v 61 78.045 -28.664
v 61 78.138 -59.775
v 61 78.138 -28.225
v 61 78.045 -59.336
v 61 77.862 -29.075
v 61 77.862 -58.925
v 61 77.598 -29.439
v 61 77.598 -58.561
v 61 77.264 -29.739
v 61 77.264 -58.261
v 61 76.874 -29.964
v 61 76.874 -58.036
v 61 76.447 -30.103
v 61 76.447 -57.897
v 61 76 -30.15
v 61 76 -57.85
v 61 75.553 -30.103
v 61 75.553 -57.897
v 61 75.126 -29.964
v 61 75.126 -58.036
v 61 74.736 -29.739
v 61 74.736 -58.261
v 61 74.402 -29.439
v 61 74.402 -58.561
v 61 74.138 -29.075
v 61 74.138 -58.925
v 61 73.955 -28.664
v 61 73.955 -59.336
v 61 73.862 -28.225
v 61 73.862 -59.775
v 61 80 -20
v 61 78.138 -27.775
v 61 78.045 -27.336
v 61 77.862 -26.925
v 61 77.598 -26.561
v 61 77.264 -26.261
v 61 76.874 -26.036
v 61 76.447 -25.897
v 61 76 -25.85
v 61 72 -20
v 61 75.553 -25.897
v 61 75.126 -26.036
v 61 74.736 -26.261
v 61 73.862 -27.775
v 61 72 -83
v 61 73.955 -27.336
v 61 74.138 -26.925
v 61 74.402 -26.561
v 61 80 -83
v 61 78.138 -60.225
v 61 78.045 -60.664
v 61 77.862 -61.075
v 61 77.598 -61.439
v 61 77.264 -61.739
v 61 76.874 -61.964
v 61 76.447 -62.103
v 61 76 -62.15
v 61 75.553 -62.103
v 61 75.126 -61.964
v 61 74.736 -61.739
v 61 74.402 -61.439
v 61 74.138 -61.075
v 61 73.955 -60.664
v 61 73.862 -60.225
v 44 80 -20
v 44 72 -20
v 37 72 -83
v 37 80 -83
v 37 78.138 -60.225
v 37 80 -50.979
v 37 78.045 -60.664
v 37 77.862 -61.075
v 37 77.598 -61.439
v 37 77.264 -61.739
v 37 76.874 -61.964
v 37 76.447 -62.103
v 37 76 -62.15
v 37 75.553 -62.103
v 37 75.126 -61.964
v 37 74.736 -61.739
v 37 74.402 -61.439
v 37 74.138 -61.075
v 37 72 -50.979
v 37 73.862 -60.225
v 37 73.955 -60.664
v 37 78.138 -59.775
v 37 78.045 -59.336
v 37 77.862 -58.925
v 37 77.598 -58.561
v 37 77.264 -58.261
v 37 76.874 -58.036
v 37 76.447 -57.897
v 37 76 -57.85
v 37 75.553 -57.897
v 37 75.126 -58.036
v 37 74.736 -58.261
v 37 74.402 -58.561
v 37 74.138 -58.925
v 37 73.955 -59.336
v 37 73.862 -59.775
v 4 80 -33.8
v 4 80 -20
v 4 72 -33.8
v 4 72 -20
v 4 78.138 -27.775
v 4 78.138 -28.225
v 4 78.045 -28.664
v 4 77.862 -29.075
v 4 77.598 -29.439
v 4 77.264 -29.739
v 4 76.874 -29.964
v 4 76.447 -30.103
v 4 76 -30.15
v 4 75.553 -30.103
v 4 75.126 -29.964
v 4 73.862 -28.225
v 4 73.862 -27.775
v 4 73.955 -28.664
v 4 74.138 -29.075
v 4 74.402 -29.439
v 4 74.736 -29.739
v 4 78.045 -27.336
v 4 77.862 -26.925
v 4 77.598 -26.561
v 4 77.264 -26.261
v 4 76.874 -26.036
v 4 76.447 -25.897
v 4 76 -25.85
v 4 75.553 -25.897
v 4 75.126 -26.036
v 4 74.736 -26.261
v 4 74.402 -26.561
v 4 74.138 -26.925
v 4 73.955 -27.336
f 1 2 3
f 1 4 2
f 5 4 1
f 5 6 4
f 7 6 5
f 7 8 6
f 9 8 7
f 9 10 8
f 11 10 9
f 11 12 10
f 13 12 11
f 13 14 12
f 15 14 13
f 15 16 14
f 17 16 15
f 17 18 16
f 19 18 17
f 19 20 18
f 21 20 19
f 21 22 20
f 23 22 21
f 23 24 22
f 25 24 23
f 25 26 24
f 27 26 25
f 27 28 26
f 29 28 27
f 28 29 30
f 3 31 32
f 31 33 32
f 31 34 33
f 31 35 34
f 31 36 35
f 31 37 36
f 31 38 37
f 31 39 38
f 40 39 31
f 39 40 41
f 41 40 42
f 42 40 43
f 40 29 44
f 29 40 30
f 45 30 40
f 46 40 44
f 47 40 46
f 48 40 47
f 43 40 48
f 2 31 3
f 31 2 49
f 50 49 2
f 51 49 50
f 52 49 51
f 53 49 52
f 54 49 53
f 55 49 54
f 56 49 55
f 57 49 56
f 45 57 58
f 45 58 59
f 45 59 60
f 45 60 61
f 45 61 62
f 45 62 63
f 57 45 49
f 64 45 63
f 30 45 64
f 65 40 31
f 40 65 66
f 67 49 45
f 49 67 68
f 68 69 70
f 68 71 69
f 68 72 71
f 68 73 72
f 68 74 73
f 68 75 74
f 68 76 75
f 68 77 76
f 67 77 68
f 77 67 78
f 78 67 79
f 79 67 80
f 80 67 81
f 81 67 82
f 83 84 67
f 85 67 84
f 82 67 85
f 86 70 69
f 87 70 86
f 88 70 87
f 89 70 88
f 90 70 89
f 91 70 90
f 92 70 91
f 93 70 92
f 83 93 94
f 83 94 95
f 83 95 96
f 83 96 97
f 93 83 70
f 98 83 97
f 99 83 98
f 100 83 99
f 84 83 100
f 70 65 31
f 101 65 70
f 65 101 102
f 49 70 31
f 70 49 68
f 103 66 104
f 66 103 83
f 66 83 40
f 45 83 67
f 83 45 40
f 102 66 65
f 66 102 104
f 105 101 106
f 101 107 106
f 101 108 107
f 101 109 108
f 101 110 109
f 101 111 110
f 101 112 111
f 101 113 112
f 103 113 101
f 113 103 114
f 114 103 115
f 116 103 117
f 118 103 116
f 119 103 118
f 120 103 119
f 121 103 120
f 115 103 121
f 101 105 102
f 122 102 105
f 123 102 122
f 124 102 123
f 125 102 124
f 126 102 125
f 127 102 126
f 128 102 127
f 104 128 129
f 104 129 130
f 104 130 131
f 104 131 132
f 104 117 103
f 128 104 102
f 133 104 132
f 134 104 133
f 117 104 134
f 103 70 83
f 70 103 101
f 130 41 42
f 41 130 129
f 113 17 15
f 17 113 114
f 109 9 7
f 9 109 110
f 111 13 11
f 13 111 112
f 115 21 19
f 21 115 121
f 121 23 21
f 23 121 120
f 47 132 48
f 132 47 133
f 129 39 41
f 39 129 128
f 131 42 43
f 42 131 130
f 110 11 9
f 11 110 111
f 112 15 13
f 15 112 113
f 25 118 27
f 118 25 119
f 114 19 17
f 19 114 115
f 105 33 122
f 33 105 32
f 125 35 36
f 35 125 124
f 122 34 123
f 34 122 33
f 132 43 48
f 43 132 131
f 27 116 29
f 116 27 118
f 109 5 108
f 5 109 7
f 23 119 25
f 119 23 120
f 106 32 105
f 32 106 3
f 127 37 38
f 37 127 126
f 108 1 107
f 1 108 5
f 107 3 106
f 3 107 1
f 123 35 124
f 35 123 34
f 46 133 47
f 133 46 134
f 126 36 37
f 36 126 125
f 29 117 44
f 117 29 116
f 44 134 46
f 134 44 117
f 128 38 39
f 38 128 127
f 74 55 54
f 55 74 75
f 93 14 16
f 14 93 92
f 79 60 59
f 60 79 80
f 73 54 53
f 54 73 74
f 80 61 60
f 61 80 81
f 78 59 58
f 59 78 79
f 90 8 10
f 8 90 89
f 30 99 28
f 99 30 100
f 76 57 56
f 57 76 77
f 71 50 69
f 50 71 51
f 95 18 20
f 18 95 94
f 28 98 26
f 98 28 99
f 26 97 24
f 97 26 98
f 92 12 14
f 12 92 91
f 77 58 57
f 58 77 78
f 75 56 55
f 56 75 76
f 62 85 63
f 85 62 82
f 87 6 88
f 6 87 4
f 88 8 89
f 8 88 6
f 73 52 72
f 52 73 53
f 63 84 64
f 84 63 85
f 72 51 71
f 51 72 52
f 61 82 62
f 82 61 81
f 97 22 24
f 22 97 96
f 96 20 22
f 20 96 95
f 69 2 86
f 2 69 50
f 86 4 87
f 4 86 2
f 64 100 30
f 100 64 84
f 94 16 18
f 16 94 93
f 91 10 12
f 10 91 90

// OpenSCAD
// side piece of chimney guard rail for left entry
color ("linen")
difference() {
union () {
    // long left side
    translate([37,72,-83])
    cube([24,8,63]);

    // left top
    translate([4,72,-33.8])
    cube([40,8,13.8]);
    
    // left top angle
    translate([4,72,-33.8])
    rotate([0,27.5,0])
    cube([40,8,15.5]);
}
    // top holes left and right
    translate([-4,76,-28])
    rotate([0,90,0])
    cylinder(r=2.15,90, $fn=30);

    // bottom holes left and right
    translate([-4,76,-60])
    rotate([0,90,0])
    cylinder(r=2.15,90, $fn=30);
}
